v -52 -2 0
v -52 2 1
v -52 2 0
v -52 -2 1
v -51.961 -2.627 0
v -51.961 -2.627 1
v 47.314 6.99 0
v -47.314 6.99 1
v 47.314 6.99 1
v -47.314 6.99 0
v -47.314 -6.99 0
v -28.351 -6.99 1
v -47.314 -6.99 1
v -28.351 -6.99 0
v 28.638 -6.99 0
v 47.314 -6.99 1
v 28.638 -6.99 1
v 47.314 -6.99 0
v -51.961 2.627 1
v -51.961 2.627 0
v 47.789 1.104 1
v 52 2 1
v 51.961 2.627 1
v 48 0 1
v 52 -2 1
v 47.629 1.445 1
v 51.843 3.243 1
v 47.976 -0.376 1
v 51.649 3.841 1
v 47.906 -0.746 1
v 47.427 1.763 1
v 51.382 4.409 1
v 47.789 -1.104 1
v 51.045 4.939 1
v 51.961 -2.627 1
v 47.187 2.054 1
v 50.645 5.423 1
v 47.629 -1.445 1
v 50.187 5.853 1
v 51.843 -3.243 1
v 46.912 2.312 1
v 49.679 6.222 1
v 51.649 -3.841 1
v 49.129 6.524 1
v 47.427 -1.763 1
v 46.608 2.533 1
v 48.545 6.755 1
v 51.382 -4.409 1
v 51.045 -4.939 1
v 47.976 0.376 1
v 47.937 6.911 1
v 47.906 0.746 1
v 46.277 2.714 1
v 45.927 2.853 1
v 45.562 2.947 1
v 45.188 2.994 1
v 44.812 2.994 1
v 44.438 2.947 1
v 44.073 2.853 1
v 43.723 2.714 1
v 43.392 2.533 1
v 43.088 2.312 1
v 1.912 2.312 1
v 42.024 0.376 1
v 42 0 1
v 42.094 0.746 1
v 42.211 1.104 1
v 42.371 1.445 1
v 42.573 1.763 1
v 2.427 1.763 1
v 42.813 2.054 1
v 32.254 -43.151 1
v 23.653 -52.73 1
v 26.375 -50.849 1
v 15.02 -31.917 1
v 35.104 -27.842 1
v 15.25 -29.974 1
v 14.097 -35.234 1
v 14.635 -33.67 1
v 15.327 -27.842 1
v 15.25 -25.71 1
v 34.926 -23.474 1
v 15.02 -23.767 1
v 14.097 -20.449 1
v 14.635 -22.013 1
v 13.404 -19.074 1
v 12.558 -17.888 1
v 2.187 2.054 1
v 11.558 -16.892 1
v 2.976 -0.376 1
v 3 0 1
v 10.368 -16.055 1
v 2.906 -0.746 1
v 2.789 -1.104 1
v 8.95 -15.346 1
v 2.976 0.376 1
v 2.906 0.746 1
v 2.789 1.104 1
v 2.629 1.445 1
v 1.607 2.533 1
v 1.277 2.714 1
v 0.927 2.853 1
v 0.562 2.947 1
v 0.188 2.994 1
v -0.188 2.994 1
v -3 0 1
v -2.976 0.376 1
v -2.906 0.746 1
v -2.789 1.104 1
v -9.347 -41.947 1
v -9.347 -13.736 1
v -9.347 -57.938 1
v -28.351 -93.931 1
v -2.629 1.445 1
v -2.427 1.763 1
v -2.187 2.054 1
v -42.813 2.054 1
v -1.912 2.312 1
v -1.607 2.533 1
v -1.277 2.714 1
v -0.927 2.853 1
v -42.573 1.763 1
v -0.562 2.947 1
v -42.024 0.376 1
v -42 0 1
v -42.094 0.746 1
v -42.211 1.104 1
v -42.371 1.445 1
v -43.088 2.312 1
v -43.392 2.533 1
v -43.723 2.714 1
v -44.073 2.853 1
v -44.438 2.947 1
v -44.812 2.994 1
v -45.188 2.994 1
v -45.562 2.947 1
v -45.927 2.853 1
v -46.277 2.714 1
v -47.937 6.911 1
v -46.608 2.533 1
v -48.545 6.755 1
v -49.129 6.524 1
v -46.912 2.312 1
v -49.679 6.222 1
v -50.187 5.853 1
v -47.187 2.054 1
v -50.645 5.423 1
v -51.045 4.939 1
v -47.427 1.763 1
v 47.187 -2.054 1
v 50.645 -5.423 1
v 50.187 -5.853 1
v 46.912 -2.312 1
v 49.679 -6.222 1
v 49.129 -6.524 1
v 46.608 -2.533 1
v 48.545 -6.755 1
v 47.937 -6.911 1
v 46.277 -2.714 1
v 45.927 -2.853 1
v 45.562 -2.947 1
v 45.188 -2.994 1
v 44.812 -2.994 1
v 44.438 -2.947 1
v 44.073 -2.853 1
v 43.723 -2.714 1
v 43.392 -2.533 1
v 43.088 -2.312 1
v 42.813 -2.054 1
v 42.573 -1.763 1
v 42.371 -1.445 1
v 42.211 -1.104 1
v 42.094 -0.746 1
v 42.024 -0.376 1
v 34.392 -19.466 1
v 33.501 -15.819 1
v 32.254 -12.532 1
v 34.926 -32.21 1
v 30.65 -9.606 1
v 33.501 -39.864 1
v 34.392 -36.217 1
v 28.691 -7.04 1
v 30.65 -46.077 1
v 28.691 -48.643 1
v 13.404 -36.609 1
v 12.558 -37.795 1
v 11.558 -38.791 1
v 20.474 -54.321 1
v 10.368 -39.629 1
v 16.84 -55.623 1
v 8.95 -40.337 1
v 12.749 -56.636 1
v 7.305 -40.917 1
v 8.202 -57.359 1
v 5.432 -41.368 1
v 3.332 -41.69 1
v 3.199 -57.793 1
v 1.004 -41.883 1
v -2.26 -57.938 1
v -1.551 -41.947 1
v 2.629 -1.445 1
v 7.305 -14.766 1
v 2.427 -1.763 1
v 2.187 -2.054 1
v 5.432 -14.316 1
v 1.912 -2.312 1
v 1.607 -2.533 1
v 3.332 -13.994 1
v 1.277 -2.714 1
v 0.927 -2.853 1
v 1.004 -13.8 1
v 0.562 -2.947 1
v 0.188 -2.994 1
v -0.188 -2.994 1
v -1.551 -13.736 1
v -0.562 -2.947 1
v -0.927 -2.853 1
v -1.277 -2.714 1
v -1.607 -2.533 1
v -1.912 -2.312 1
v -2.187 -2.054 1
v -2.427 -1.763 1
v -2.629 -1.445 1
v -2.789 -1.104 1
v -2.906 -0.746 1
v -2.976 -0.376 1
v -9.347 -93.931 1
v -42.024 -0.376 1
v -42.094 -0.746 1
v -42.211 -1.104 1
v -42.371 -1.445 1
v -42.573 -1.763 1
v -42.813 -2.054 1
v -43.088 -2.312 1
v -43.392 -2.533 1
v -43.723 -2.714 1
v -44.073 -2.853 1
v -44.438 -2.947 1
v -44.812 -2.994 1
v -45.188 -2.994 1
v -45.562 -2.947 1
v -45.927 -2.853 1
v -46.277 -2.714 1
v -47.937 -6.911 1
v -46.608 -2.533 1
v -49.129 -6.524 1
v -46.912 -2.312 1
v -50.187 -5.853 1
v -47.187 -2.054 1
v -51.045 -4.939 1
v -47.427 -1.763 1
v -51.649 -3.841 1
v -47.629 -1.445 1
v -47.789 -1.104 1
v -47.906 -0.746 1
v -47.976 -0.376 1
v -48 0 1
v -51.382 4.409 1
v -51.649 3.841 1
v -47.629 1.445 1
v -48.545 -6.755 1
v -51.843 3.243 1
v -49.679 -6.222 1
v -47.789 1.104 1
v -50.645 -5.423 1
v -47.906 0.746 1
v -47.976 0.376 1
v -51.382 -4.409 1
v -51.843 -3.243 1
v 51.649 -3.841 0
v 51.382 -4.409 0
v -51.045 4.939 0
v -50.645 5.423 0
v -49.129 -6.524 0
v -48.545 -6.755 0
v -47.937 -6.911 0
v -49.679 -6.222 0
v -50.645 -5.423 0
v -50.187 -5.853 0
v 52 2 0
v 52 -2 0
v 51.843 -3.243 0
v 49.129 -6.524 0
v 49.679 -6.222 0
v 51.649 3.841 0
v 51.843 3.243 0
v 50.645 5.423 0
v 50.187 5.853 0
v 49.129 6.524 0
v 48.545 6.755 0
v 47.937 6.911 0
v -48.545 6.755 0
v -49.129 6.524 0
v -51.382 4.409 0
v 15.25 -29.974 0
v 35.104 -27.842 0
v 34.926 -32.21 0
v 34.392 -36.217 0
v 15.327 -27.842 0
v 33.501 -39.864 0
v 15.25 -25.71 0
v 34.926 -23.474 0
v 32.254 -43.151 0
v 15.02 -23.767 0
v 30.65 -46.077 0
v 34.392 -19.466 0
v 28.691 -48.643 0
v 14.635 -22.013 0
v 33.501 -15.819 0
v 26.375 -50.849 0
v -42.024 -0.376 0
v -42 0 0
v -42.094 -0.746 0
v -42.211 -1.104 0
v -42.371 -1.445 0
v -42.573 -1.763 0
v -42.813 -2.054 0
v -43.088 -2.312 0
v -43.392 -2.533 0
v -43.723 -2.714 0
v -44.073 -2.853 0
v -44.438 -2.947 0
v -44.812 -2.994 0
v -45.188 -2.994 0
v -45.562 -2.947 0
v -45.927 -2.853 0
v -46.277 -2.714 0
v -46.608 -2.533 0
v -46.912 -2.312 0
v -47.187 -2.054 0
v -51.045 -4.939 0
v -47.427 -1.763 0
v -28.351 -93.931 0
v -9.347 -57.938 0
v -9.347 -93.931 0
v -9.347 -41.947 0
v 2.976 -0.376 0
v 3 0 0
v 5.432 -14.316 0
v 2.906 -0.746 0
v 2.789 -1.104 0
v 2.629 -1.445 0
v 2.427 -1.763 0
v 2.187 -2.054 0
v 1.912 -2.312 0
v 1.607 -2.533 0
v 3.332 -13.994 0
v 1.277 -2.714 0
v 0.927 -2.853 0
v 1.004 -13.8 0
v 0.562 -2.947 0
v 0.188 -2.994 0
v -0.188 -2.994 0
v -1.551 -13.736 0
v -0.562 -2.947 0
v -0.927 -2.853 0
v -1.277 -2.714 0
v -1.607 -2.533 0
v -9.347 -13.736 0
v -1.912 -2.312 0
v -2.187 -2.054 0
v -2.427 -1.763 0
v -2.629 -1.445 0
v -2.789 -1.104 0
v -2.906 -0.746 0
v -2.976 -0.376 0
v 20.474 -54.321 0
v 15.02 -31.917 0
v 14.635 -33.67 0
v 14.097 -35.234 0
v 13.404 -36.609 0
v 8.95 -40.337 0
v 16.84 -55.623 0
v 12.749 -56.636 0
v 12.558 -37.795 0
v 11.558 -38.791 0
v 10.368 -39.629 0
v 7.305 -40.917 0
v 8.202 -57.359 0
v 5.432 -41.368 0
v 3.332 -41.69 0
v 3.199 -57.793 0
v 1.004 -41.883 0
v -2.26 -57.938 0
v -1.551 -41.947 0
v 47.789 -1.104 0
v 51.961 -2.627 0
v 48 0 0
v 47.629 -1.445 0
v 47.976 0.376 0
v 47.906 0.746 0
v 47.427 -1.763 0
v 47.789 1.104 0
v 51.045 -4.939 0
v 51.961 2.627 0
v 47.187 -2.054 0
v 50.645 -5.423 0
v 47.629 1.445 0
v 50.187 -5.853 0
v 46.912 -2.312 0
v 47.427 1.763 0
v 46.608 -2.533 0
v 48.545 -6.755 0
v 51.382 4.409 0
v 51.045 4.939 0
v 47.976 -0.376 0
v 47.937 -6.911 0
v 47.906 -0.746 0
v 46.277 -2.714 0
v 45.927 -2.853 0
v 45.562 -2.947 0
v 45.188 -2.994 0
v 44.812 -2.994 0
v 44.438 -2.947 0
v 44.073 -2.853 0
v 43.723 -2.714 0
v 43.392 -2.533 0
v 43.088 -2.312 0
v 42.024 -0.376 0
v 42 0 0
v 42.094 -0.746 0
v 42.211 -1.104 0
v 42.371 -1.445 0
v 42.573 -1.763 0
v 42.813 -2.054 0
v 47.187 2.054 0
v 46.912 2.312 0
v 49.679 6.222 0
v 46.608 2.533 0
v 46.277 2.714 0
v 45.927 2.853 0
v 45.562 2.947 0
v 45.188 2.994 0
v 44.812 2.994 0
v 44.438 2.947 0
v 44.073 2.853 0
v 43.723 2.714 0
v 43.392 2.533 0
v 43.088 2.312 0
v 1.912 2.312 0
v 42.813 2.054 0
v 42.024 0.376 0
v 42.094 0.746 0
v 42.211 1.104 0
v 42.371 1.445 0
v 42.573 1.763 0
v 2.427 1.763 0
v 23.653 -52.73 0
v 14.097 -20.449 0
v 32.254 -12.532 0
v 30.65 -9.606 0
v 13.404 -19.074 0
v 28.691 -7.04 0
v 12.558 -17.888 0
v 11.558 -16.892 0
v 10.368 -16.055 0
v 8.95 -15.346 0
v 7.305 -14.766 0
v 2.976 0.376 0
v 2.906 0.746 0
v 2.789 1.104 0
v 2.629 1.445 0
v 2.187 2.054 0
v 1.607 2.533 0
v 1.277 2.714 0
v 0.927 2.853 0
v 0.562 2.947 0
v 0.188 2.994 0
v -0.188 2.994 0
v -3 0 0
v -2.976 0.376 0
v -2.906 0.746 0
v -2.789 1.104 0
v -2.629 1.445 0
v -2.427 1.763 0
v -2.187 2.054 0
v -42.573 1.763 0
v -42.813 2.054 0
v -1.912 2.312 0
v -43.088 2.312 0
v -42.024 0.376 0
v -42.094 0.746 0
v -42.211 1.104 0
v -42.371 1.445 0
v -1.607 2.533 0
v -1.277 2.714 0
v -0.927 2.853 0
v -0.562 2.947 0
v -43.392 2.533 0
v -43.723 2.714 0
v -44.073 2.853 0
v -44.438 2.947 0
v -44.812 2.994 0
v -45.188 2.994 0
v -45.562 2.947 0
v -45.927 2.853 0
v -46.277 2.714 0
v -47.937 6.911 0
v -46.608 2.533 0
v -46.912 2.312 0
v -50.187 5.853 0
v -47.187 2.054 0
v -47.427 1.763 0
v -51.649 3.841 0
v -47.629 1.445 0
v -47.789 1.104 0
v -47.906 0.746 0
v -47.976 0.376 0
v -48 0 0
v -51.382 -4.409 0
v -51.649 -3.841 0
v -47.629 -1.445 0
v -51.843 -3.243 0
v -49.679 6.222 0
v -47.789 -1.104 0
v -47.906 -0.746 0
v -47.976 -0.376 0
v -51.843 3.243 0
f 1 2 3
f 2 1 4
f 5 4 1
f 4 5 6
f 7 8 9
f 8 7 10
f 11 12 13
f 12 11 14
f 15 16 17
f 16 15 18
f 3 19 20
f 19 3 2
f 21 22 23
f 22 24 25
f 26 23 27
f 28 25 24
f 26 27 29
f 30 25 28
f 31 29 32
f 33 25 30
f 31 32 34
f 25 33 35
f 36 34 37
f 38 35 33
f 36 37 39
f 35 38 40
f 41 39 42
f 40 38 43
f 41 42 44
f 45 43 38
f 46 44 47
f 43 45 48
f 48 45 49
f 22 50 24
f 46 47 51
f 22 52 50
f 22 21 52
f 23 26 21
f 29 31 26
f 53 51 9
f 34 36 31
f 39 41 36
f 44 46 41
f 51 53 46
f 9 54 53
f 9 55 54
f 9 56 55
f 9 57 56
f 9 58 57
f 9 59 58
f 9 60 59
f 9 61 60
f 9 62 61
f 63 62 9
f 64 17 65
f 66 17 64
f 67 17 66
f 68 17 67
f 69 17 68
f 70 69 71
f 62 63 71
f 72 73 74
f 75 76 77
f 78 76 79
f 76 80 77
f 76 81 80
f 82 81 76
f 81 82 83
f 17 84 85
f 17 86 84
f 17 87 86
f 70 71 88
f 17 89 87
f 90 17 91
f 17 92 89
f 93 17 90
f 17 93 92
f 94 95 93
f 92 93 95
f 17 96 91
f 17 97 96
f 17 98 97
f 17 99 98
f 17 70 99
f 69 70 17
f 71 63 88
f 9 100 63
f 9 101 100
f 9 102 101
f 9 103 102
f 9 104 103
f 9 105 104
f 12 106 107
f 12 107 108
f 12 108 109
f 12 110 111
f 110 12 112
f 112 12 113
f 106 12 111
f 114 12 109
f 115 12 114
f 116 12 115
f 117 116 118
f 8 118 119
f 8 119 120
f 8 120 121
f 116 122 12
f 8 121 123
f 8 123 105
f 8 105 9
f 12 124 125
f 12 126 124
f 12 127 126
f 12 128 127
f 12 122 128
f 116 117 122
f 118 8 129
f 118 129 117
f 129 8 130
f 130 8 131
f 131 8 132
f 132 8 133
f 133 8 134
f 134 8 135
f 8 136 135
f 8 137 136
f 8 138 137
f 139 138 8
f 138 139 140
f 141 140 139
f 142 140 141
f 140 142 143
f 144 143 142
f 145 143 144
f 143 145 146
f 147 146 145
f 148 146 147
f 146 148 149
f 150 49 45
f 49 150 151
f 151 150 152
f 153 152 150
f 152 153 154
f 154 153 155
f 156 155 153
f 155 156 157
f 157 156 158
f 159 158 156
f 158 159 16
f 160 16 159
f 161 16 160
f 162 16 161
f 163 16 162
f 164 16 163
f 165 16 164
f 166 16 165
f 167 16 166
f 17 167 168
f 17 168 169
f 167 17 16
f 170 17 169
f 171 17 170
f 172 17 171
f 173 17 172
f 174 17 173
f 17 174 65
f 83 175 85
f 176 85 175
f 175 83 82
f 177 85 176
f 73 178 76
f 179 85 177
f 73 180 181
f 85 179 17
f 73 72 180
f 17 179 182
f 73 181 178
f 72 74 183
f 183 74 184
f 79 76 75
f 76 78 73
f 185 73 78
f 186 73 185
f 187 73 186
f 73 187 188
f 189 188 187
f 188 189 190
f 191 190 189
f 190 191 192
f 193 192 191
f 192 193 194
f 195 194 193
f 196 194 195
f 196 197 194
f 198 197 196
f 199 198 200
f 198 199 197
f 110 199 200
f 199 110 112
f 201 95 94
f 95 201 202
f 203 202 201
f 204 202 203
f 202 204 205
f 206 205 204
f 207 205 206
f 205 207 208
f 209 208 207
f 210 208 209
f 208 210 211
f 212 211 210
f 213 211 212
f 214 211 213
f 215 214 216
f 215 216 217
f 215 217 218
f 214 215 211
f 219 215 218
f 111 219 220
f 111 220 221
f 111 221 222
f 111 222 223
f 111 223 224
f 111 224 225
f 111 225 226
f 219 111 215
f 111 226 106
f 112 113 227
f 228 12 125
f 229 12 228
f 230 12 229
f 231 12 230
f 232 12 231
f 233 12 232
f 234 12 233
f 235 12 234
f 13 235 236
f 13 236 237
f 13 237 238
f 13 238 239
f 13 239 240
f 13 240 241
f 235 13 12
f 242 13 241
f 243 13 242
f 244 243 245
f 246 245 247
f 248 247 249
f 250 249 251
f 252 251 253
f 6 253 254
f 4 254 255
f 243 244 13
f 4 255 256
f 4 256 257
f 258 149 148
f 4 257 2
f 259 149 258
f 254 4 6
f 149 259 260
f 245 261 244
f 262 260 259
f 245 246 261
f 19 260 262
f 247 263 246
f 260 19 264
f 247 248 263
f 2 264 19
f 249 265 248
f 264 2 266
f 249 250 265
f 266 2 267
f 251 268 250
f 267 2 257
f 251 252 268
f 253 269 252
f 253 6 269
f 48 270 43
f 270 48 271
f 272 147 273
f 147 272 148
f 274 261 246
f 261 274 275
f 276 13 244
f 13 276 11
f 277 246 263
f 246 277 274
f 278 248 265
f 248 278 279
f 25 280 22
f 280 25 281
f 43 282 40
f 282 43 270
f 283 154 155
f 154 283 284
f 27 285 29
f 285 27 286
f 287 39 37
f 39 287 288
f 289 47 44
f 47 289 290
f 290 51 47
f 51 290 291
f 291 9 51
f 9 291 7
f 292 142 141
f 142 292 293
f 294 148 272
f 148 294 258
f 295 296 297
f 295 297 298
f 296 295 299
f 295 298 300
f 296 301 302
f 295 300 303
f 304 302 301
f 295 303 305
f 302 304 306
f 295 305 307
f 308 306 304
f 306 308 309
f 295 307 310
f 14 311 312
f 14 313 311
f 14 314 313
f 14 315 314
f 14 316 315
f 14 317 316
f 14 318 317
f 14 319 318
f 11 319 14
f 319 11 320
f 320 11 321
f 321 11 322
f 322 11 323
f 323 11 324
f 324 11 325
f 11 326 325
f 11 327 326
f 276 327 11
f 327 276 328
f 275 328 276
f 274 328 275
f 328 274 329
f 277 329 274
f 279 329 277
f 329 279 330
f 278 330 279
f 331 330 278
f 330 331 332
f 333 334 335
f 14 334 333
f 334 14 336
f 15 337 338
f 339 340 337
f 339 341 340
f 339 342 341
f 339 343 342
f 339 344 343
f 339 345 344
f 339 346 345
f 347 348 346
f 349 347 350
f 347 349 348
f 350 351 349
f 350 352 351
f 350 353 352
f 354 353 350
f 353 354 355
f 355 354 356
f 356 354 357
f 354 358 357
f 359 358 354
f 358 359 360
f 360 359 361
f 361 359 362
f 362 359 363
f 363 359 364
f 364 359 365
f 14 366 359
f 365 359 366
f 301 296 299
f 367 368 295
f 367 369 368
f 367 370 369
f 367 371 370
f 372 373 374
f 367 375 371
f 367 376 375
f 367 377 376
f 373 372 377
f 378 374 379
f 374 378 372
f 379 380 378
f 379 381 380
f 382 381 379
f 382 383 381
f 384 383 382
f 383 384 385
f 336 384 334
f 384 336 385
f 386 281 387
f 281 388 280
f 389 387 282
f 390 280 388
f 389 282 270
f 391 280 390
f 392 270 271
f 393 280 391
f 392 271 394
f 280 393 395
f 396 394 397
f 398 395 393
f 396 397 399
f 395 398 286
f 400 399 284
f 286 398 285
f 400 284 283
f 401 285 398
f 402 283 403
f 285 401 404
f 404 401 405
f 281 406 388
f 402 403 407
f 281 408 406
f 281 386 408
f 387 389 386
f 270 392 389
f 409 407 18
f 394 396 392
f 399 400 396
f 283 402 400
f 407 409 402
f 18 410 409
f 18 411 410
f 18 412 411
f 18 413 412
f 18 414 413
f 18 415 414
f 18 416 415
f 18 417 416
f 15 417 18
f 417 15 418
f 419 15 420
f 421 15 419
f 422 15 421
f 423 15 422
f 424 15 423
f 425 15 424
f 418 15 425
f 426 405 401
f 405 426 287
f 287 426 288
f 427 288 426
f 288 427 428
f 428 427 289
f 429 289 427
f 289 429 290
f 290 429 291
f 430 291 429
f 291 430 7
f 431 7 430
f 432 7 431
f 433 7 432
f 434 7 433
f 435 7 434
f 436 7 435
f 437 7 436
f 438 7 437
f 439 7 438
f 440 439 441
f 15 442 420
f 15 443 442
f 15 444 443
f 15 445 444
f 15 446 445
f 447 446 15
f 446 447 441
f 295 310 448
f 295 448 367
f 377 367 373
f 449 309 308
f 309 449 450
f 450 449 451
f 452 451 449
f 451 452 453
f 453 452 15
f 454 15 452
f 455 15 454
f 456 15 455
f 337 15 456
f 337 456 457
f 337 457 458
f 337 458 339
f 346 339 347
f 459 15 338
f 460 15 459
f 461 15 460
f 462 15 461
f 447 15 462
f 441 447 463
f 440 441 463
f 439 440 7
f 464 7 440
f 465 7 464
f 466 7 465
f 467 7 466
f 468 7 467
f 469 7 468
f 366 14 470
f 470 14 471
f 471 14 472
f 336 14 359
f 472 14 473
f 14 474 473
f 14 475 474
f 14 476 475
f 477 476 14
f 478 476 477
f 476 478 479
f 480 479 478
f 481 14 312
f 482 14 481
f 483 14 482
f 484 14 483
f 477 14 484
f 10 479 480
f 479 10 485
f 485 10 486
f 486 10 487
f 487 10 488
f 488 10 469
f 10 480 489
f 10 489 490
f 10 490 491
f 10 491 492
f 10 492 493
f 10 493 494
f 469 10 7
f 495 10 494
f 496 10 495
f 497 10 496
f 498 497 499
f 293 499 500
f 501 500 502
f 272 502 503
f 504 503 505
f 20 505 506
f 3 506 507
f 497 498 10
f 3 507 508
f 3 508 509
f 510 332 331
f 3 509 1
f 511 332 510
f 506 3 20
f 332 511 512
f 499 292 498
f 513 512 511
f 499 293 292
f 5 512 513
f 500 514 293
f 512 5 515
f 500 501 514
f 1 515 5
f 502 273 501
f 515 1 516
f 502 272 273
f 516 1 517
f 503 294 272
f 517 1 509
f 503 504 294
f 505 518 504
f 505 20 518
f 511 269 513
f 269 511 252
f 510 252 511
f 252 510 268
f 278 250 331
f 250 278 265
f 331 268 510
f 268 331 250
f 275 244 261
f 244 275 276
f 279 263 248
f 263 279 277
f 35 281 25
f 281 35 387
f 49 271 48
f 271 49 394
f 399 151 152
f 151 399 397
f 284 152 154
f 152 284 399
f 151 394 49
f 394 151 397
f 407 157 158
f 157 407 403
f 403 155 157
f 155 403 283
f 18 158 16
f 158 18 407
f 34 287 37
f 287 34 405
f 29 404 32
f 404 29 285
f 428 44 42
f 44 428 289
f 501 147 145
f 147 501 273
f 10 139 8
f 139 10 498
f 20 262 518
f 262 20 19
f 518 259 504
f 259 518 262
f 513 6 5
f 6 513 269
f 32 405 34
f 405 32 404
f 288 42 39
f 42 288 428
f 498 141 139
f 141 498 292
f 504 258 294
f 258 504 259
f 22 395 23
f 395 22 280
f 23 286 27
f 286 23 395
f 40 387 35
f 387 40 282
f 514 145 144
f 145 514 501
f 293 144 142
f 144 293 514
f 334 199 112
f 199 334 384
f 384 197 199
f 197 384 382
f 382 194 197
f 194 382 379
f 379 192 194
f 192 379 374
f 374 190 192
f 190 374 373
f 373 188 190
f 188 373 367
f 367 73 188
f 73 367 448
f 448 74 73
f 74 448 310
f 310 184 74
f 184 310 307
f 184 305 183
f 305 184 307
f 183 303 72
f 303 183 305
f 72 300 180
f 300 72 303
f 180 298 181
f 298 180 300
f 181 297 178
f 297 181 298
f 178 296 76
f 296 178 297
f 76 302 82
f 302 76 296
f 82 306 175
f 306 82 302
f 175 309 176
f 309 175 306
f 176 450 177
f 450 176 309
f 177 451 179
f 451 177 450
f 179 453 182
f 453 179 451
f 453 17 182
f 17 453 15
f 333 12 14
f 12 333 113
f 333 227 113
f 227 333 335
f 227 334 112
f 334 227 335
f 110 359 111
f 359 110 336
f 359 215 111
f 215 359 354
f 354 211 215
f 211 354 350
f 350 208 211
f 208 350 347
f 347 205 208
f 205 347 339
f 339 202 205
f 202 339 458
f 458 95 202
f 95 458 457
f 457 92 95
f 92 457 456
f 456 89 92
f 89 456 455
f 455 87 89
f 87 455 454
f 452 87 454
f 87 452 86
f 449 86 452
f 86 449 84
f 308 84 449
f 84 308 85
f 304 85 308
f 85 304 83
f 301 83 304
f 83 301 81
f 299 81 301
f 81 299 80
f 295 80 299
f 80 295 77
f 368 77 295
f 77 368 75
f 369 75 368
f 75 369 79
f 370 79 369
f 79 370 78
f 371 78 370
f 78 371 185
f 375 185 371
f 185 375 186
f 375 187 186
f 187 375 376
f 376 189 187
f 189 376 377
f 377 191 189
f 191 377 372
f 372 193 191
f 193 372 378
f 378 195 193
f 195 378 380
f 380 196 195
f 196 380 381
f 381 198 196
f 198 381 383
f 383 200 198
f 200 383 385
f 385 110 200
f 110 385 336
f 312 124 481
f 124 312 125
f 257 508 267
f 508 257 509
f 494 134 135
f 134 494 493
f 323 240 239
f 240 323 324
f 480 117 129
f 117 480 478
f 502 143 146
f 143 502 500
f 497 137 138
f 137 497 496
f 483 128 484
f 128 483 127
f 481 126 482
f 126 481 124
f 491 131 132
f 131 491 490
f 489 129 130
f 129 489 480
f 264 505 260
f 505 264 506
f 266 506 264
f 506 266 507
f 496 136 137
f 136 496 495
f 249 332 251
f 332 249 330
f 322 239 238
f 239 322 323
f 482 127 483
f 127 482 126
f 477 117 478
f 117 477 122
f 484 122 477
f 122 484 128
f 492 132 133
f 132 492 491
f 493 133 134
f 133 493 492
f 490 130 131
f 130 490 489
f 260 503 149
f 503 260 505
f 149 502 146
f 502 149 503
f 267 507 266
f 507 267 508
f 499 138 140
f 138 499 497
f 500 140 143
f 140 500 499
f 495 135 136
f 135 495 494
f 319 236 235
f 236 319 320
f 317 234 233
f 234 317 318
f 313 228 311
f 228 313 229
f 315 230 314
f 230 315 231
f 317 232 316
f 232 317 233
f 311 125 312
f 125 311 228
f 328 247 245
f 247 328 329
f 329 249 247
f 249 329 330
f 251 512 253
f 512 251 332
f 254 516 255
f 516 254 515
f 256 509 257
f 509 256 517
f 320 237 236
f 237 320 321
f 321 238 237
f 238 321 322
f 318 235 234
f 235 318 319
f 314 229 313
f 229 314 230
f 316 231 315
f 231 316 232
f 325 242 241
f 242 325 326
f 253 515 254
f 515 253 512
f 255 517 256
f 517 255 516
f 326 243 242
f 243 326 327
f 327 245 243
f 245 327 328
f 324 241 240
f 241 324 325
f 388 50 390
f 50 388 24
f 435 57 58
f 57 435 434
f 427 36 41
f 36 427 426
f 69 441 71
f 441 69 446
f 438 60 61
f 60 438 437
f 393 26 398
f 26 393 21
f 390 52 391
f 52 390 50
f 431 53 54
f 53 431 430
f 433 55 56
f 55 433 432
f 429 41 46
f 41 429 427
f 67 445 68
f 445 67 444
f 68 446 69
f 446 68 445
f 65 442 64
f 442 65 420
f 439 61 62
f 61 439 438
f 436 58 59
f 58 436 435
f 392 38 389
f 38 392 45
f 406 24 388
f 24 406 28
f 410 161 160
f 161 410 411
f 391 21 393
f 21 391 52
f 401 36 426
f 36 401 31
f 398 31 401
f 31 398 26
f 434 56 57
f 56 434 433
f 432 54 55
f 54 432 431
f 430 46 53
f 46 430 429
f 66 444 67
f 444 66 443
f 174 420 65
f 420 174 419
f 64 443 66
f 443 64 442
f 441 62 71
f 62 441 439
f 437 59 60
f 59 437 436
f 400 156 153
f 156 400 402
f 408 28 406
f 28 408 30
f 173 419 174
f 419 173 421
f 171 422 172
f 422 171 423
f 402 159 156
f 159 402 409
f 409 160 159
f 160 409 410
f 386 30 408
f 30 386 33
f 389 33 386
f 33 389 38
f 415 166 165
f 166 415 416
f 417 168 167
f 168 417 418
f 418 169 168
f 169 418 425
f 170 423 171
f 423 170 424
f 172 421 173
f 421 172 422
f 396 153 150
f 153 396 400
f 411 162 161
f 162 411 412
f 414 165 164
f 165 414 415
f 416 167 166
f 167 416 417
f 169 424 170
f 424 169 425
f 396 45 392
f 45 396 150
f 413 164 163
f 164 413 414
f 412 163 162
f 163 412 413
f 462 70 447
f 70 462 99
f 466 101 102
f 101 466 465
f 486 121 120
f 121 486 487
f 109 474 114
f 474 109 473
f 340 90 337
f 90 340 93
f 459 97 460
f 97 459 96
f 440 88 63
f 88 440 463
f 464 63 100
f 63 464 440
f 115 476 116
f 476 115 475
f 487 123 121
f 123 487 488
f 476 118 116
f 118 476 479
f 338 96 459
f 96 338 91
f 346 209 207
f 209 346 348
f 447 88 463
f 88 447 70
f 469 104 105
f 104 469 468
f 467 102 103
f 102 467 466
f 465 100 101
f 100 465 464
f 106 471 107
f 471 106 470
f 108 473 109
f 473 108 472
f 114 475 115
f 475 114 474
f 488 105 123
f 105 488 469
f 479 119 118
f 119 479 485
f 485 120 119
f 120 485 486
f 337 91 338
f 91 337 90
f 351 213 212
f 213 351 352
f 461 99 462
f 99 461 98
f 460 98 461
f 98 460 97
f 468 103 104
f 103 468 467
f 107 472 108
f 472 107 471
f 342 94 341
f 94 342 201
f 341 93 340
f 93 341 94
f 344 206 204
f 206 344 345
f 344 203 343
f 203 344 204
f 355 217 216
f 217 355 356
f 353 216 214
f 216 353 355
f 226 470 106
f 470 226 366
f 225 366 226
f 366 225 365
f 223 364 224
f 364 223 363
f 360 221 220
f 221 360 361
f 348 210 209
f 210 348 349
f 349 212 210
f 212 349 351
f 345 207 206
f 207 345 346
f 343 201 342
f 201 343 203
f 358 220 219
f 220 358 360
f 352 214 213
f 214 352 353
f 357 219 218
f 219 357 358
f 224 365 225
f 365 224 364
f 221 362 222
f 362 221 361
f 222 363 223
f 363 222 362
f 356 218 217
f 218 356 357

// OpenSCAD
$fn = 50;


difference() {
	union() {
		translate(v = [0, 0, 0]) {
			rotate(a = [0, 0, 0]) {
				hull() {
					translate(v = [-47.0000000000, 2.0000000000, 0]) {
						rotate(a = [0, 0, 0]) {
							translate(v = [0, 0, 0]) {
								rotate(a = [0, 0, 0]) {
									cylinder(h = 1, r = 5);
								}
							}
						}
					}
					translate(v = [47.0000000000, 2.0000000000, 0]) {
						rotate(a = [0, 0, 0]) {
							translate(v = [0, 0, 0]) {
								rotate(a = [0, 0, 0]) {
									cylinder(h = 1, r = 5);
								}
							}
						}
					}
					translate(v = [-47.0000000000, -2.0000000000, 0]) {
						rotate(a = [0, 0, 0]) {
							translate(v = [0, 0, 0]) {
								rotate(a = [0, 0, 0]) {
									cylinder(h = 1, r = 5);
								}
							}
						}
					}
					translate(v = [47.0000000000, -2.0000000000, 0]) {
						rotate(a = [0, 0, 0]) {
							translate(v = [0, 0, 0]) {
								rotate(a = [0, 0, 0]) {
									cylinder(h = 1, r = 5);
								}
							}
						}
					}
				}
			}
		}
		translate(v = [0, 0, 0]) {
			rotate(a = [0, 0, 0]) {
				linear_extrude(height = 1) {
					text(font = "DejaVu Sans Mono:style=Bold", halign = "center", size = 95.0000000000, text = "P", valign = "top");
				}
			}
		}
	}
	union() {
		translate(v = [-45.0000000000, 0.0000000000, -125.0000000000]) {
			rotate(a = [0, 0, 0]) {
				cylinder(h = 250, r = 3.0000000000);
			}
		}
		translate(v = [45.0000000000, 0.0000000000, -125.0000000000]) {
			rotate(a = [0, 0, 0]) {
				cylinder(h = 250, r = 3.0000000000);
			}
		}
		translate(v = [45.0000000000, 0.0000000000, -125.0000000000]) {
			rotate(a = [0, 0, 0]) {
				cylinder(h = 250, r = 3.0000000000);
			}
		}
		translate(v = [0, 0, -125.0000000000]) {
			rotate(a = [0, 0, 0]) {
				cylinder(h = 250, r = 3.0000000000);
			}
		}
	}
}
